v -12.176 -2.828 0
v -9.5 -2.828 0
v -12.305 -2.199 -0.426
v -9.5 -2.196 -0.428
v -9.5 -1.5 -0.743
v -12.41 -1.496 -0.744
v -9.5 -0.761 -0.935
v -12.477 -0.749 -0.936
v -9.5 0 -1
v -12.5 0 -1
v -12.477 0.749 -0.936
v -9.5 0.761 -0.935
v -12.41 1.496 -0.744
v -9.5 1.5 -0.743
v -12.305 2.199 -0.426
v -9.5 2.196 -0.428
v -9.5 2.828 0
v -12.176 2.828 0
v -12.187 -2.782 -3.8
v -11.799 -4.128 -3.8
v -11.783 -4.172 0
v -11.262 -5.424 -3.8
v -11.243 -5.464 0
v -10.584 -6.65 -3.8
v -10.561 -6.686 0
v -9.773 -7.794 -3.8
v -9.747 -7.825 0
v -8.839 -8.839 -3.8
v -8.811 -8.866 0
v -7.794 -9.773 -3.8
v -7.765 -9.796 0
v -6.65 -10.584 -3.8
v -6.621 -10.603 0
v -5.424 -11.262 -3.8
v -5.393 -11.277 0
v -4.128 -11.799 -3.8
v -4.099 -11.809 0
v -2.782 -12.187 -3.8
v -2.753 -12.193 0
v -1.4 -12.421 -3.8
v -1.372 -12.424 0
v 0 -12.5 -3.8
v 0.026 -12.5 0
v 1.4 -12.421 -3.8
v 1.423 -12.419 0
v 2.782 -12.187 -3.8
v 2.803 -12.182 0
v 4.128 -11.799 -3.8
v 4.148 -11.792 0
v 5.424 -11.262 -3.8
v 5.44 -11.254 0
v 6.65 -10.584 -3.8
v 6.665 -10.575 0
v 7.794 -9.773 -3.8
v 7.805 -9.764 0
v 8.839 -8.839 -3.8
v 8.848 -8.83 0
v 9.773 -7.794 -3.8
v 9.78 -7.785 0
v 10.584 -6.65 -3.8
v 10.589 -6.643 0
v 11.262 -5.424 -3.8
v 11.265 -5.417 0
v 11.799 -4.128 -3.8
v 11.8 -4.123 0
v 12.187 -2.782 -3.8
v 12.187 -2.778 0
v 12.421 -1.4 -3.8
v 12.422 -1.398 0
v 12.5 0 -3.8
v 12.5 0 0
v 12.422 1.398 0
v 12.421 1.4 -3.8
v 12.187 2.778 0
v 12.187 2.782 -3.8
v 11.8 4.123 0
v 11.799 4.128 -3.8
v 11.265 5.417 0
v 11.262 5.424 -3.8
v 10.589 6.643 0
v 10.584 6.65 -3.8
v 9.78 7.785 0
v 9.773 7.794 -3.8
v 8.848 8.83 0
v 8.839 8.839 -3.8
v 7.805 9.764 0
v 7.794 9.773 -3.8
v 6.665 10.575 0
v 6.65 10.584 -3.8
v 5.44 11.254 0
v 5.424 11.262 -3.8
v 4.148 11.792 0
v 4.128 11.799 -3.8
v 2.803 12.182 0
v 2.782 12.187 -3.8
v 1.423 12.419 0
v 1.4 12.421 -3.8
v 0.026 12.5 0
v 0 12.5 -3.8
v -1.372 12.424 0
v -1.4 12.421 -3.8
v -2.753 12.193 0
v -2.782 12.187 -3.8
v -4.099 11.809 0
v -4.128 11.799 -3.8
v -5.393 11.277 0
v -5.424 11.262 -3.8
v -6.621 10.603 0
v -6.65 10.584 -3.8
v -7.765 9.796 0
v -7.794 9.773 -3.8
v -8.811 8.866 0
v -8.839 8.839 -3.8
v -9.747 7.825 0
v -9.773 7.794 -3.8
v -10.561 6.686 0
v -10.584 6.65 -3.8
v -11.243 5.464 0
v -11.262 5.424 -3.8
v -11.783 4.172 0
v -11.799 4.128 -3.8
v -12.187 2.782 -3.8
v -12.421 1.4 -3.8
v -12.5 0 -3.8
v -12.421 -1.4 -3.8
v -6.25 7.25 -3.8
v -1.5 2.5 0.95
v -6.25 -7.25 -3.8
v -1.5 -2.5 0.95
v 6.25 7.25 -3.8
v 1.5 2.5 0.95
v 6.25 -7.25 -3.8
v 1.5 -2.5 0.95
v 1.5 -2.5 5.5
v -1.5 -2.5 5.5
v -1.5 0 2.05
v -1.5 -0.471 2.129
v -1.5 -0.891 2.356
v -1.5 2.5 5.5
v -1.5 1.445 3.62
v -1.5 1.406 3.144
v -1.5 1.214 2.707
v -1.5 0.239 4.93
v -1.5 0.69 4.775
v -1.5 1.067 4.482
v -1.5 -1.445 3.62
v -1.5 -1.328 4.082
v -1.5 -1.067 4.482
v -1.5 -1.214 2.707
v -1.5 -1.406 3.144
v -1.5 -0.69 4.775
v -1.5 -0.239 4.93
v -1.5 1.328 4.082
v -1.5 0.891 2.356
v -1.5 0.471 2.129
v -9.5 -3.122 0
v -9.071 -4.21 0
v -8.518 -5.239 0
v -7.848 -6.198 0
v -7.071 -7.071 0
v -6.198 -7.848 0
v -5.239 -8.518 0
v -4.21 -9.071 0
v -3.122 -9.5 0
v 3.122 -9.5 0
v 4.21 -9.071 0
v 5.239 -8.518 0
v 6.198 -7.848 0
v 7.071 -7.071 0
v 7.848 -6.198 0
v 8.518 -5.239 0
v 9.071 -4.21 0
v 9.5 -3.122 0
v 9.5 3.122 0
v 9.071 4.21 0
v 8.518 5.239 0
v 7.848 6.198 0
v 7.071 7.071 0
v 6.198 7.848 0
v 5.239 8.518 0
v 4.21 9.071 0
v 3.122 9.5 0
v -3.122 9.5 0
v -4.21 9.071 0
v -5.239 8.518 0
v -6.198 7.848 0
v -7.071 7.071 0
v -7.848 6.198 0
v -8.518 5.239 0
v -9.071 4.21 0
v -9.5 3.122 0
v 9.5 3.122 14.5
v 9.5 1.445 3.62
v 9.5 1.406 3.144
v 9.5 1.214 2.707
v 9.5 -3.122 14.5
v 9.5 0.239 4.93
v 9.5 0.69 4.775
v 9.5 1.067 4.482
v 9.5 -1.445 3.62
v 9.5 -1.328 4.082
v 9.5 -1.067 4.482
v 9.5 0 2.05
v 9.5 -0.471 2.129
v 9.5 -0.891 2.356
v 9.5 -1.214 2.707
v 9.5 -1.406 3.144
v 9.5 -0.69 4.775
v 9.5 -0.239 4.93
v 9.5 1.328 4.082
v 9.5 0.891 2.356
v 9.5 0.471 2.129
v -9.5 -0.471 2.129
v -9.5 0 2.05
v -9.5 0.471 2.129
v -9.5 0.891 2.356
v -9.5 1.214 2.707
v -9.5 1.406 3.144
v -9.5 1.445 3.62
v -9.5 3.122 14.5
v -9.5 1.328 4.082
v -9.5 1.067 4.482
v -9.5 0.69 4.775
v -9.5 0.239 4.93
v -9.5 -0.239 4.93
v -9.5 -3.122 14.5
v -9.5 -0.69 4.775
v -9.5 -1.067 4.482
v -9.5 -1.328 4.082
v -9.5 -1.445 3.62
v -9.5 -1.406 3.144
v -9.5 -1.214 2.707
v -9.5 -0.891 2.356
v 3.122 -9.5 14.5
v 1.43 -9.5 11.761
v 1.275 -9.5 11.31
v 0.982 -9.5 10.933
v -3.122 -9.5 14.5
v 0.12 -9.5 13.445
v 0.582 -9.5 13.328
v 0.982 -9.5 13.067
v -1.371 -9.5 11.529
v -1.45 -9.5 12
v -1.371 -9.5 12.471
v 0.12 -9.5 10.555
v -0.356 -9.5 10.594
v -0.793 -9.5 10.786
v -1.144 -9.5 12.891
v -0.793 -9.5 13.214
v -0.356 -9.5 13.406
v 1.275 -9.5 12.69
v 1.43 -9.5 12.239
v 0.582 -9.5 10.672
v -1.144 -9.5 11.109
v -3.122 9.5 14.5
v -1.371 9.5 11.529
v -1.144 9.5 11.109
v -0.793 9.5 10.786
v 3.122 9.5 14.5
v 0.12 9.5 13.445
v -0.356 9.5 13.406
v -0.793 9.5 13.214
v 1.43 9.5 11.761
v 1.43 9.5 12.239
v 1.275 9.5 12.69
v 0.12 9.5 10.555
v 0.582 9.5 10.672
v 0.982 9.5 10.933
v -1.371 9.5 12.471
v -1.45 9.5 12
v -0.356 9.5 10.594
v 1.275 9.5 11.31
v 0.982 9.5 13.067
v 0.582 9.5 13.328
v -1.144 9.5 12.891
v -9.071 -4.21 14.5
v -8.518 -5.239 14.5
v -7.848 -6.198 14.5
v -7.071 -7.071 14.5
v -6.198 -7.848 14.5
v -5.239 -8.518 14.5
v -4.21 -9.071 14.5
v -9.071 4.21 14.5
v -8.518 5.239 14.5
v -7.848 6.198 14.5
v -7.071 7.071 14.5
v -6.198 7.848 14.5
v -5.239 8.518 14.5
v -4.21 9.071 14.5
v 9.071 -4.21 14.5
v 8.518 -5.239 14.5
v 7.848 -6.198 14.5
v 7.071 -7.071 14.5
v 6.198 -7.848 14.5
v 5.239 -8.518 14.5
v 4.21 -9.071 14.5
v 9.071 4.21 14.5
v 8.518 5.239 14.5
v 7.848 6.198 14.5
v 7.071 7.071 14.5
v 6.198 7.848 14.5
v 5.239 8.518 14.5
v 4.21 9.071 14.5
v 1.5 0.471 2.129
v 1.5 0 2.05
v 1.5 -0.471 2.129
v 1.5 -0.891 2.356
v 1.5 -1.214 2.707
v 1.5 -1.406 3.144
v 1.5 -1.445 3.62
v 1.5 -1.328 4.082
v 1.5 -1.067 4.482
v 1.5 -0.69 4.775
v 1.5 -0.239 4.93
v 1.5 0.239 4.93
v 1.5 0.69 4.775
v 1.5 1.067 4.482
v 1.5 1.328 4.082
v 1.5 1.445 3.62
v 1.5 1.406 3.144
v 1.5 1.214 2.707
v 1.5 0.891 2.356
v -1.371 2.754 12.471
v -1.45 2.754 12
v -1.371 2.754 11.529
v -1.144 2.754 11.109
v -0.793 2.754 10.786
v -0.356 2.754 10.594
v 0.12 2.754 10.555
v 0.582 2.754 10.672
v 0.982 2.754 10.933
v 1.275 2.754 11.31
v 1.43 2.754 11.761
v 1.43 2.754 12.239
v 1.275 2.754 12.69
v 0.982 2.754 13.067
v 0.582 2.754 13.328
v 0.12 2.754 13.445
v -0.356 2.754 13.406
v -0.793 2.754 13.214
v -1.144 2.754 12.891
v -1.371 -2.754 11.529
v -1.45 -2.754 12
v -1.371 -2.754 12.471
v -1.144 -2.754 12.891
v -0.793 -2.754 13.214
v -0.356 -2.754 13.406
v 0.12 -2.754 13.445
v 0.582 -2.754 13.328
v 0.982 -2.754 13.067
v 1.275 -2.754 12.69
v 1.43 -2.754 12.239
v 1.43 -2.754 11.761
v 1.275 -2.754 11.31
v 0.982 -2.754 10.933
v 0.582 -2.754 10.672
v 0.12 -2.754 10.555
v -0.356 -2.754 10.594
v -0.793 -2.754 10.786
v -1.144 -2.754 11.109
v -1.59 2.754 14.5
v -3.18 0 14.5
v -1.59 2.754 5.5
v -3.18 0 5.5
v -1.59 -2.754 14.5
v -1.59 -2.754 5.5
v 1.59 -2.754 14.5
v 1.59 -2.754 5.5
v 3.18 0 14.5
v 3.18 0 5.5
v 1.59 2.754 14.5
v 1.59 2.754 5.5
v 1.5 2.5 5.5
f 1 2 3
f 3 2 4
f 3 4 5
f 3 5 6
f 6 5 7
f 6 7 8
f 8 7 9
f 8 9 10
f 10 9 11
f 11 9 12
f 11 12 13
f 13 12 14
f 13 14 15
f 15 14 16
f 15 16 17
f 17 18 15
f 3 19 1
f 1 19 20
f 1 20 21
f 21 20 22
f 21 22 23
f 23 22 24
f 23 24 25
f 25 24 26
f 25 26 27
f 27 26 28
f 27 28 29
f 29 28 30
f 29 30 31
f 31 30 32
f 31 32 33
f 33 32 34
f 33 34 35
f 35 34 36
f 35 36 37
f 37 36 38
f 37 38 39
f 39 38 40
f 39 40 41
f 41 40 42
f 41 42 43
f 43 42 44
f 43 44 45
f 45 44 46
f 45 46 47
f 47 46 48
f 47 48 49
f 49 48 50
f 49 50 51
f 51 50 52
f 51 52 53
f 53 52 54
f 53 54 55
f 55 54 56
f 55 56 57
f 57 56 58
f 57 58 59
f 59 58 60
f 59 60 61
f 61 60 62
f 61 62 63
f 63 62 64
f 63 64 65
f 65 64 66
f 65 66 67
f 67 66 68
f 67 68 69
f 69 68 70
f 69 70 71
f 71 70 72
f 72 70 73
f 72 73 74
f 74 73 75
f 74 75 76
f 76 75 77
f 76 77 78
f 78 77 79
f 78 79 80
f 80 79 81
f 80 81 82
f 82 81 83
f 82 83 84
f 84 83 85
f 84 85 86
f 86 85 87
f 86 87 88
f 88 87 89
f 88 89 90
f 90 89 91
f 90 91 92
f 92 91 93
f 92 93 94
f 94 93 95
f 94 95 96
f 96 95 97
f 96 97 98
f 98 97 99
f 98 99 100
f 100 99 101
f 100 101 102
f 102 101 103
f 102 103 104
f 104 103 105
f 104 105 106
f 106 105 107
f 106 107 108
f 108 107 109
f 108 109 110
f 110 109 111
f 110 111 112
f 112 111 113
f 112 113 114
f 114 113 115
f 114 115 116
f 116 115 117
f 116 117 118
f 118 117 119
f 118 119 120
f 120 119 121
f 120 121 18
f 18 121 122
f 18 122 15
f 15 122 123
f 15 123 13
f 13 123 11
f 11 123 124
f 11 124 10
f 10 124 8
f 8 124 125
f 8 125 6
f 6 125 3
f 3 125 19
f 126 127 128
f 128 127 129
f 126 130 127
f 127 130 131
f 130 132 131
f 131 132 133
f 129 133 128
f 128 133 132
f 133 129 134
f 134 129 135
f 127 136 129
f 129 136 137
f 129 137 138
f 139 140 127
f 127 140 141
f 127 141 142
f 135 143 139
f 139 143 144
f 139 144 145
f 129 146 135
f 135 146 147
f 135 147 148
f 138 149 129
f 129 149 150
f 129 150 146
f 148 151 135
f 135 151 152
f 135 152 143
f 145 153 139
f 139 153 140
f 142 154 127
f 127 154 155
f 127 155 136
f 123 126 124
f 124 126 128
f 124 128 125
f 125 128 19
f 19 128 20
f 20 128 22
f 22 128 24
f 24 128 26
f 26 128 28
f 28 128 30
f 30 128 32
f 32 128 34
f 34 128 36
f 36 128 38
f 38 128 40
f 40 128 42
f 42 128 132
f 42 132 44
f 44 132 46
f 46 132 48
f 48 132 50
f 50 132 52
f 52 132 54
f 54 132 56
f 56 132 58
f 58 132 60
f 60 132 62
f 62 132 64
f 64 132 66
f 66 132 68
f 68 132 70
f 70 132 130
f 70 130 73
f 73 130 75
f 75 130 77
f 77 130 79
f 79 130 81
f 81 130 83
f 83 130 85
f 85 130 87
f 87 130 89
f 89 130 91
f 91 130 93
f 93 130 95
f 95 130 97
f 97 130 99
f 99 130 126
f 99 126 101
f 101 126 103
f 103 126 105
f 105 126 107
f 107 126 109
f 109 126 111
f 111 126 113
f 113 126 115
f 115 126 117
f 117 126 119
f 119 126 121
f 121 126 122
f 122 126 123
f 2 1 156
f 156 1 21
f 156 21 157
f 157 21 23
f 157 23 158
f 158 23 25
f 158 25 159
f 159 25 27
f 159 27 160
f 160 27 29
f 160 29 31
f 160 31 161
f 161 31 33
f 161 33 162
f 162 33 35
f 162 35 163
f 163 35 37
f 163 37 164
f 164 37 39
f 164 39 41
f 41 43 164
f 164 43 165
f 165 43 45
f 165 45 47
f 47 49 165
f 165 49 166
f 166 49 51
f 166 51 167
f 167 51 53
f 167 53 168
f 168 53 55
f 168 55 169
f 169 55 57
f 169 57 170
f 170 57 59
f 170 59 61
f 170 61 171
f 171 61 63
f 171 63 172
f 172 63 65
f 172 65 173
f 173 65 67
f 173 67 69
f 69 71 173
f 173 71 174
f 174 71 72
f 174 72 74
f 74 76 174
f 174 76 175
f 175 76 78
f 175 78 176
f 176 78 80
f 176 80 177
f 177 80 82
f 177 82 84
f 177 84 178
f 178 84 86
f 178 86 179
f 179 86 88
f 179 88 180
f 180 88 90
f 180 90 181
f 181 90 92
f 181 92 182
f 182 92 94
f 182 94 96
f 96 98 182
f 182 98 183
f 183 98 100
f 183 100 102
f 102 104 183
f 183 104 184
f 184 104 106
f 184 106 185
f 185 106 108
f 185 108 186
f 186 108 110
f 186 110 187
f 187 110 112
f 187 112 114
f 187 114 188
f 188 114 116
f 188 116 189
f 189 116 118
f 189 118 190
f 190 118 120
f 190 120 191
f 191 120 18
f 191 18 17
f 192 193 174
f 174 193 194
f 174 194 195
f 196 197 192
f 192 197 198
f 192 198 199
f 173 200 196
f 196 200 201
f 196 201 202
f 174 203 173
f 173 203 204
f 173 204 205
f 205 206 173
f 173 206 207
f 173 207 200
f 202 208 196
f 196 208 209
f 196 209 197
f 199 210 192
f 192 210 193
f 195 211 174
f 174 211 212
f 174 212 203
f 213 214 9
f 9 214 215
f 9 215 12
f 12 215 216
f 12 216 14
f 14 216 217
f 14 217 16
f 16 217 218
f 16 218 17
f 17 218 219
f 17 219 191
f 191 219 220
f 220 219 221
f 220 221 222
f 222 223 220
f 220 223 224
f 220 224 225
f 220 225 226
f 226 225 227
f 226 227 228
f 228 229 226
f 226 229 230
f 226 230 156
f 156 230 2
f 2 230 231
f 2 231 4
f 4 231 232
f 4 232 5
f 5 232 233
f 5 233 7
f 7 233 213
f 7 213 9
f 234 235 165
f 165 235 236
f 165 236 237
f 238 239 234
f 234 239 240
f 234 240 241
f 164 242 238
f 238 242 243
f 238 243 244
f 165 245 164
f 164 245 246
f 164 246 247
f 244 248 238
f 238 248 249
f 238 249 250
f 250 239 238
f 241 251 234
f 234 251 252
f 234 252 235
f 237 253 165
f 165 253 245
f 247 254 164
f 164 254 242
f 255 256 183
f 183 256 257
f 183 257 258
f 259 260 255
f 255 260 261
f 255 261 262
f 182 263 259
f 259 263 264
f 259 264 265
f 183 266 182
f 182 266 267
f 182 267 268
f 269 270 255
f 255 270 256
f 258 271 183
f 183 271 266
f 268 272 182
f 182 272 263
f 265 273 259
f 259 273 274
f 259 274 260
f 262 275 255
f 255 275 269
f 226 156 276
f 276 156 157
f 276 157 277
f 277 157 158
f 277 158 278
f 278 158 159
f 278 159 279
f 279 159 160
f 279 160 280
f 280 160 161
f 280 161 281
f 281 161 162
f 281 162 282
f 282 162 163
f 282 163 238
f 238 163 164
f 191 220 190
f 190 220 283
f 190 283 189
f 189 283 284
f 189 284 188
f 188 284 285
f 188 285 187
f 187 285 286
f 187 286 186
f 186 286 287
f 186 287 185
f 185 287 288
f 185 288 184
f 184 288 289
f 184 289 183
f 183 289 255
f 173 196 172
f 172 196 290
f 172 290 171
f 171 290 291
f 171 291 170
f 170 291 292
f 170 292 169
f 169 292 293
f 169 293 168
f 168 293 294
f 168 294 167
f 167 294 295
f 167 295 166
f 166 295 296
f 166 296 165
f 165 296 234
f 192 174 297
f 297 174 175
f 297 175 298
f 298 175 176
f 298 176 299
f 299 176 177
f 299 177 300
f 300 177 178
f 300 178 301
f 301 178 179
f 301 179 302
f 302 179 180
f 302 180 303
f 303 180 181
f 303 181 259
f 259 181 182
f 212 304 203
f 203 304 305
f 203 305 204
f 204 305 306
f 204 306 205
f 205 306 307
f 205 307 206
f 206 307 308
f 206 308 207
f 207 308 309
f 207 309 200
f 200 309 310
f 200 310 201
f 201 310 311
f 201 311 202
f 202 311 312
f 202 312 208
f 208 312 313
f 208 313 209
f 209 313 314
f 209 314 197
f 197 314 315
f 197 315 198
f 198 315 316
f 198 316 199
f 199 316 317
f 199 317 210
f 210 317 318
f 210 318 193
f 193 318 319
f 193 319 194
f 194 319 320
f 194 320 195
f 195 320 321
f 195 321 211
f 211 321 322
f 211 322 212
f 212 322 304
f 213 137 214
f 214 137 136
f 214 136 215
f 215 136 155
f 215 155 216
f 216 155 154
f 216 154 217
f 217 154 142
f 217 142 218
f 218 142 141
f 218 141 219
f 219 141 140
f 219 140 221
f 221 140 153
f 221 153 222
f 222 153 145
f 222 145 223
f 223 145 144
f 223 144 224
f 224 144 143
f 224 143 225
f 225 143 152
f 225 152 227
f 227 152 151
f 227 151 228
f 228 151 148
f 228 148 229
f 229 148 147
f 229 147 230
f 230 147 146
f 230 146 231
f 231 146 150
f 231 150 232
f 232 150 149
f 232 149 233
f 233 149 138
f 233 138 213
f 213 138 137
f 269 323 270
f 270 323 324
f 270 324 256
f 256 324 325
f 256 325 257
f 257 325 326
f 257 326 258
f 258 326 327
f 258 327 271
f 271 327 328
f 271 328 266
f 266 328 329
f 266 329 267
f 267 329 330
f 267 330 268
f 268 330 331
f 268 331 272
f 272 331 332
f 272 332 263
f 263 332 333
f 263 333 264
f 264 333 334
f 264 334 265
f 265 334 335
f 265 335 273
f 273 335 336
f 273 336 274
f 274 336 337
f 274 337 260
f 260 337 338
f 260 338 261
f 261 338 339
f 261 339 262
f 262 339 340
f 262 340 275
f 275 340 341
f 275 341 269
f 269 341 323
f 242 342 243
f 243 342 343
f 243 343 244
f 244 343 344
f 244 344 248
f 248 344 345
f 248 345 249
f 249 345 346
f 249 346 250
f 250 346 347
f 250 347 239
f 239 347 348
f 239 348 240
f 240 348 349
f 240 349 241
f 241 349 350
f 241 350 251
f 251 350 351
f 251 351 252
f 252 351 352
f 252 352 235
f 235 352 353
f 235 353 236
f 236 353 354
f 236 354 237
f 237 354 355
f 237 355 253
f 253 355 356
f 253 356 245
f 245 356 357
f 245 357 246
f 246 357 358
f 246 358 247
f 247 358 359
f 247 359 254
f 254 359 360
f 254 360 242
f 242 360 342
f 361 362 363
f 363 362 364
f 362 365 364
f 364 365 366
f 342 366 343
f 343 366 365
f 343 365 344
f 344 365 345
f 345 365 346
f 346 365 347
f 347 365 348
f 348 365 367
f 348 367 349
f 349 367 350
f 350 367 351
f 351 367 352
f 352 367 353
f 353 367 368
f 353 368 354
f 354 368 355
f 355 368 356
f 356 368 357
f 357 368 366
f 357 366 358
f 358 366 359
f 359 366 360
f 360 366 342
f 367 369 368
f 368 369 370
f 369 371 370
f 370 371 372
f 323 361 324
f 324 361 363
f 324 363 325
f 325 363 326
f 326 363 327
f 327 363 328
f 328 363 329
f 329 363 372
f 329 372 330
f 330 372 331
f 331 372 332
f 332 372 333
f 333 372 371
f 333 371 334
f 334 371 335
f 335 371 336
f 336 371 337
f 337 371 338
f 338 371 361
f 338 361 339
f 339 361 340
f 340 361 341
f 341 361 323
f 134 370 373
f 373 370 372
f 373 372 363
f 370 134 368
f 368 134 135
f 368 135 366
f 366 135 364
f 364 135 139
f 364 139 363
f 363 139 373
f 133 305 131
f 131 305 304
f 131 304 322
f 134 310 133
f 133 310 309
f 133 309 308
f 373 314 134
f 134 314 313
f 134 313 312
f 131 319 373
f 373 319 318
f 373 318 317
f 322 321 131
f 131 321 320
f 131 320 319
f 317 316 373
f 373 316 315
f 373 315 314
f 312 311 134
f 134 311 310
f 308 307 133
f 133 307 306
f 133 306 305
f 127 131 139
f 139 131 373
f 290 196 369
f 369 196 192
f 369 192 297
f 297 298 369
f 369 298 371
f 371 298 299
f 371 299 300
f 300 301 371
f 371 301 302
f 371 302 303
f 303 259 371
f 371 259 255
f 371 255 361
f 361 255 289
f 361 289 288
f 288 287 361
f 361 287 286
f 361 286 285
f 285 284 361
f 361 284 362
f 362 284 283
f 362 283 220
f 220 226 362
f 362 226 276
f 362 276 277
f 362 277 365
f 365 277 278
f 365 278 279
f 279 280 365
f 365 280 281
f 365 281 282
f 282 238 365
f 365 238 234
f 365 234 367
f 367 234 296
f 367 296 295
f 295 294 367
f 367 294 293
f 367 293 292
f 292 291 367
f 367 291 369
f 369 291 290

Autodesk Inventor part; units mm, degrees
ref_plane "YZ Plane" through (0, 0, 0) normal (1, 0, 0) x (0, 1, 0)
ref_plane "XZ Plane" through (0, 0, 0) normal (0, 1, 0) x (-1, 0, 0)
ref_plane "XY Plane" through (0, 0, 0) normal (0, 0, 1) x (1, 0, 0)
sketch "Sketch1" plane through (0, 0, 0) normal (0, 0, 1) x (1, 0, 0)
  circle A0 centre (0, 0) radius 10
  dimension "d0" = 20
extrude "Extrusion1" add sketch "Sketch1" along normal blind 14.5
sketch "Sketch2" plane through (0, 0, 0) normal (0, 0, -1) x (-1, 0, 0)
  line L0 (-1.5, -2.5) -> (1.5, -2.5)
  line L1 (1.5, -2.5) -> (1.5, 2.5)
  line L2 (1.5, 2.5) -> (-1.5, 2.5)
  line L3 (-1.5, 2.5) -> (-1.5, -2.5)
  point P0 (0, 0)
  dimension "d3" = 3
  dimension "d4" = 5
  dimension "d5" = 2.5
  dimension "d6" = 1.5
extrude "Extrusion2" cut sketch "Sketch2" against normal blind 10
sketch "Sketch4" plane through (0, 0, 0) normal (0, 0, -1) x (-1, 0, 0)
  circle A0 centre (0, 0) radius 4.5
  dimension "d12" = 9
extrude "Extrusion4" [suppressed]
sketch "Sketch10" plane through (0, 0, 14.5) normal (0, 0, 1) x (1, 0, 0)
  line L0 (1.59, 2.754) -> (3.18, 0)
  line L1 (3.18, 0) -> (1.59, -2.754)
  line L2 (1.59, -2.754) -> (-1.59, -2.754)
  line L3 (-1.59, -2.754) -> (-3.18, 0)
  line L4 (-3.18, 0) -> (-1.59, 2.754)
  line L5 (-1.59, 2.754) -> (1.59, 2.754)
  point P0 (0, 0)
  point P1 (0, 0)
  dimension "d63" = 3.18
extrude "Extrusion7" cut sketch "Sketch10" against normal blind 9
ref_plane "Work Plane3" through (0, -10, 0) normal (0, -1, 0) x (1, 0, 0)
sketch "Sketch11" plane through (0, -10, 0) normal (0, -1, 0) x (1, 0, 0)
  circle A0 centre (0, 12) radius 1.45
  line L0 (10, 14.5) -> (-10, 14.5) projected
  point P0 (0, 0)
  dimension "d66" = 2.9
  dimension "d128" = 2.5
extrude "Extrusion8" cut sketch "Sketch11" against normal through all
ref_plane "Work Plane4" through (-10.5, -2.5, 0) normal (-1, 0, 0) x (0, 0, 1)
sketch "Sketch12" plane through (-10.5, -2.5, 0) normal (-1, 0, 0) x (0, 0, 1)
  circle A0 centre (3.5, 2.5) radius 1.45
  line L0 (0, 0) -> (5.5, 0) projected
  point P0 (0, 2.5)
  dimension "d71" = 2.9
  dimension "d74" = 3.5
  dimension "d124" = 2.5
extrude "Extrusion9" cut sketch "Sketch12" against normal blind 22
sketch "Sketch16" plane through (0, 0, 0) normal (0, 0, -1) x (-1, 0, 0)
  line L0 (-13.5, 7.2115) -> (-9.5, 7.2115)
  line L1 (-9.5, 7.2115) -> (-9.5, -8.6118)
  line L2 (-9.5, -8.6118) -> (-13.5, -8.6118)
  line L3 (-13.5, -8.6118) -> (-13.5, 7.2115)
  line L4 (9.5, 9.312) -> (14.5, 9.312)
  line L5 (14.5, 9.312) -> (14.5, -11.179)
  line L6 (14.5, -11.179) -> (9.5, -11.179)
  line L7 (9.5, -11.179) -> (9.5, 9.312)
  line L8 (-14.4464, 13.5) -> (12.1592, 13.5)
  line L9 (12.1592, 13.5) -> (12.1592, 9.5)
  line L10 (12.1592, 9.5) -> (-14.4464, 9.5)
  line L11 (-14.4464, 9.5) -> (-14.4464, 13.5)
  line L12 (-12.7193, -13.5) -> (12.1592, -13.5)
  line L13 (12.1592, -13.5) -> (12.1592, -9.5)
  line L14 (12.1592, -9.5) -> (-12.7193, -9.5)
  line L15 (-12.7193, -9.5) -> (-12.7193, -13.5)
  line L16 (1.5, -2.5) -> (-1.5, -2.5) projected
  line L17 (-1.5, -2.5) -> (-1.5, 2.5) projected
  line L18 (-1.5, 2.5) -> (1.5, 2.5) projected
  line L19 (1.5, 2.5) -> (1.5, -2.5) projected
  point P0 (-12.5, -8.5)
  point P1 (11.5, -8.5)
  point P2 (11.5, 8.5)
  point P3 (8.5, 8.5)
  point P4 (9.5, -9.5)
  point P5 (-8.5, -8.5)
  point P6 (12.1592, 9.312)
  point P7 (12.1592, -11.179)
  dimension "d104" = 4
  dimension "d105" = 7
  dimension "d106" = 8
  dimension "d107" = 7
  dimension "d108" = 8
  dimension "d109" = 5
  dimension "d110" = 4
  dimension "d111" = 4
extrude "Extrusion13" cut sketch "Sketch16" against normal through all contours L0 L1 L2 L3 | L4 L5 L6 L13 L14 L7 | L14 L13 L6 L7 | L7 L6 L13 L12 L15 L14 | L8 L9 L10 L11
sketch "Sketch18" plane through (0, 0, 0) normal (0, 0, -1) x (-1, 0, 0)
  circle A0 centre (0, 0) radius 12.5
  line L0 (-1.5, -2.5) -> (-1.5, 2.5) projected
  line L1 (1.5, 2.5) -> (1.5, -2.5) projected
  line L2 (-1.5, 2.5) -> (1.5, 2.5)
  line L3 (1.5, 2.5) -> (1.5, -2.5)
  line L4 (1.5, -2.5) -> (-1.5, -2.5)
  line L5 (-1.5, -2.5) -> (-1.5, 2.5)
  dimension "d118" = 25
extrude "Extrusion15" add sketch "Sketch18" along normal blind 3.8
chamfer "Chamfer1" distance 4.75 angle 45 4 edges at (1.5, 0, -3.8) (0, 2.5, -3.8) (0, -2.5, -3.8) (-1.5, 0, -3.8)
sketch "Sketch19" plane through (-9.5, -3.1225, 14.5) normal (-1, 0, 0) x (0, 0, 1)
  circle A0 centre (-11, 3.1225) radius 1.45 projected
  circle A1 centre (-11, 3.1225) radius 4.5
  point P0 (-14.5, 3.1225)
  dimension "d125" = 9
extrude "Extrusion16" cut sketch "Sketch19" along normal blind 5 contours A0 | A1
equation "\"d5\" = 0.5 * d4"
equation "\"d6\" = 0.5 * d3"
equation "\"d107\" = d105"
equation "\"d108\" = d106"
properties part number "3mm_shaft_couple_sideclip_v3"
